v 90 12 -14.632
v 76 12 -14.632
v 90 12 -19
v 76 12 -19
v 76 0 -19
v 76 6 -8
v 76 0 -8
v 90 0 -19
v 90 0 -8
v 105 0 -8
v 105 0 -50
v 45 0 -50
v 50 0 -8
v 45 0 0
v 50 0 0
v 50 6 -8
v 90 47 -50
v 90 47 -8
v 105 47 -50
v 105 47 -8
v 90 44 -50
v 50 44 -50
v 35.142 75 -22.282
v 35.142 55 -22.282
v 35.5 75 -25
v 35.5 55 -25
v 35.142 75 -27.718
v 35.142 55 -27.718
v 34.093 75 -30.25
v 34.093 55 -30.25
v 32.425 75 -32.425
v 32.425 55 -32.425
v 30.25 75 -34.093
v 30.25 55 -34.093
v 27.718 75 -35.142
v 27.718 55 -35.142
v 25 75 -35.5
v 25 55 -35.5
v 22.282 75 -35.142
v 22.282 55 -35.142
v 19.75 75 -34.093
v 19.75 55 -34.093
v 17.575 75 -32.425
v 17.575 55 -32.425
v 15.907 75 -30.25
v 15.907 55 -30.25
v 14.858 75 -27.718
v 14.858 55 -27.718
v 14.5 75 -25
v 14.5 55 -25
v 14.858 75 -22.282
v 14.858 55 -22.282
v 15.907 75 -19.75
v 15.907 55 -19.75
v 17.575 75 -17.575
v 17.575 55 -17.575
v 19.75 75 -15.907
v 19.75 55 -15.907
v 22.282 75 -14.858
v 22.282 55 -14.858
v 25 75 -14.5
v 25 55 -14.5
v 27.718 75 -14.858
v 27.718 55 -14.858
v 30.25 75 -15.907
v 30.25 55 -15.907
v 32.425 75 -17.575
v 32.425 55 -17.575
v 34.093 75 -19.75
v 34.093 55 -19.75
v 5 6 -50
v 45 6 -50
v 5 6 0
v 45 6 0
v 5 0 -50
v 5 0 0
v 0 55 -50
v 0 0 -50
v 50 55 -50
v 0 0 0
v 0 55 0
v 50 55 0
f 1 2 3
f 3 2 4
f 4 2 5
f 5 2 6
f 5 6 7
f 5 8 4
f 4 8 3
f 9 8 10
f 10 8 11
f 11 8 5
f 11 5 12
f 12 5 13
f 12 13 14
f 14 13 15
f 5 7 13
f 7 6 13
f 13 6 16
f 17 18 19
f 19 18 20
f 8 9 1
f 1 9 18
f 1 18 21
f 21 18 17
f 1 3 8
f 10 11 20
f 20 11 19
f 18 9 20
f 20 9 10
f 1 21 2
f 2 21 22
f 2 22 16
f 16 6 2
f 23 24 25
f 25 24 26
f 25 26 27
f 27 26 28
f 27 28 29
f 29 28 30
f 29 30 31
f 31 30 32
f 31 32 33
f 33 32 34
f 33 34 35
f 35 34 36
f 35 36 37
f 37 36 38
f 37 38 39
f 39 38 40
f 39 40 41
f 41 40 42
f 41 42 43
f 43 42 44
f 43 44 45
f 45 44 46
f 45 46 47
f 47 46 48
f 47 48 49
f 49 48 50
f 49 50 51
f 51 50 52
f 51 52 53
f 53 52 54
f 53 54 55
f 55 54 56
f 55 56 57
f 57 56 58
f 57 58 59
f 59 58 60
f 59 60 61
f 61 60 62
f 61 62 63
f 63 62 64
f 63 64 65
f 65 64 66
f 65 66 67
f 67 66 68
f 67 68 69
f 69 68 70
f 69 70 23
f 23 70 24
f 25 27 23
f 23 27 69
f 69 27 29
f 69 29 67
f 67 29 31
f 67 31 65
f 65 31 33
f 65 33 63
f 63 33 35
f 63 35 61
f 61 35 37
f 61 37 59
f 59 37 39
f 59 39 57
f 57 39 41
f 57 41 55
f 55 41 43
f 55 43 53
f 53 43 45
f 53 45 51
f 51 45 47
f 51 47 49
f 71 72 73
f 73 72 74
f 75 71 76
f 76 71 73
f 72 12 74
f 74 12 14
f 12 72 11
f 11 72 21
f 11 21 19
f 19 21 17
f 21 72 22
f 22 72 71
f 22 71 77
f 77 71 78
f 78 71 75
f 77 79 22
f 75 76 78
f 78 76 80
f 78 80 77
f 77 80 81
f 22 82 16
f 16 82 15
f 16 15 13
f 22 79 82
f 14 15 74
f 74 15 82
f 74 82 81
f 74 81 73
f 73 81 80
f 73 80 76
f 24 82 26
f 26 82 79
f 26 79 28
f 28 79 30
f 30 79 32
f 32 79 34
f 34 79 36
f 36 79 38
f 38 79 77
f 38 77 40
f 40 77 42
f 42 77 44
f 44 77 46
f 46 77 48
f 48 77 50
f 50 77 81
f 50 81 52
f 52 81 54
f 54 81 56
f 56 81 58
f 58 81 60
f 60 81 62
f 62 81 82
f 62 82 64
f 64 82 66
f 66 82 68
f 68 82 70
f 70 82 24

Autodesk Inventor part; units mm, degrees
ref_plane "YZ Plane" through (0, 0, 0) normal (1, 0, 0) x (0, 1, 0)
ref_plane "XZ Plane" through (0, 0, 0) normal (0, 1, 0) x (-1, 0, 0)
ref_plane "XY Plane" through (0, 0, 0) normal (0, 0, 1) x (1, 0, 0)
sketch "Sketch1" plane through (0, 0, 0) normal (0, 1, 0) x (-1, 0, 0)
  line L0 (0, 0) -> (-50, 0)
  line L1 (-50, 0) -> (-50, -50)
  line L2 (-50, -50) -> (0, -50)
  line L3 (0, -50) -> (0, 0)
  dimension "d0" = 50
  dimension "d1" = 50
extrude "Extrusion1" add sketch "Sketch1" along normal blind 55
sketch "Sketch2" plane through (0, 0, 0) normal (0, 0, 1) x (1, 0, 0)
  line L0 (0, 0) -> (50, 0) projected
  line L1 (45, 0) -> (45, 6)
  line L2 (50, 0) -> (50, 55) projected
  line L3 (5, 0) -> (5, 6)
  line L4 (0, 0) -> (0, 55) projected
  line L5 (5, 6) -> (45, 6)
  line L6 (5, 0) -> (45, 0)
  dimension "d7" = 6
  dimension "d8" = 5
  dimension "d9" = 5
sketch "Sketch3" plane through (0, 0, 0) normal (0, 0, 1) x (1, 0, 0)
  point P0 (0, 0)
sketch "Sketch4" plane through (0, 55, 0) normal (0, 1, 0) x (1, 0, 0)
  circle A0 centre (25, 25) radius 10.5
  line L0 (0, 50) -> (0, 0) projected
  line L1 (0, 0) -> (50, 0) projected
  dimension "d10" = 21
  dimension "d11" = 25
  dimension "d12" = 25
extrude "Extrusion2" cut sketch "Sketch2" against normal blind 55
extrude "Extrusion3" add sketch "Sketch4" along normal blind 20
sketch "Sketch5" plane through (50, 0, 0) normal (1, 0, 0) x (0, 0, -1)
  line L0 (50, 0) -> (8, 0)
  line L1 (0, 0) -> (50, 0) projected
  line L2 (8, 0) -> (8, 6)
  line L3 (0, 55) -> (50, 55) projected
  line L4 (50, 0) -> (50, 55) projected
  line L5 (50, 0) -> (50, 44)
  line L6 (8, 6) -> (50, 44)
  dimension "d17" = 42
  dimension "d18" = 6
  dimension "d27" = 44
extrude "Extrusion4" add sketch "Sketch5" along normal blind 40
sketch "Sketch6" plane through (50, 0, -8) normal (0, 0, 1) x (1, 0, 0)
  point P0 (-50, 0)
sketch "Sketch7" plane through (50, 6, -8) normal (0, 0.6987, 0.7154) x (1, 0, 0)
  point P0 (-50, -9.8822)
sketch "Sketch8" plane through (50, 6, -8) normal (0, 0.6987, 0.7154) x (1, 0, 0)
  point P0 (-50, -9.8822)
sketch "Sketch9" plane through (90, 0, 0) normal (1, 0, 0) x (0, 0, -1)
  line L0 (0, 0) -> (50, 0) projected
  line L1 (50, 0) -> (8, 0)
  line L2 (8, 0) -> (8, 47)
  line L3 (8, 47) -> (50, 47)
  line L4 (50, 47) -> (50, 0)
  dimension "d22" = 42
  dimension "d23" = 47
extrude "Extrusion5" add sketch "Sketch9" along normal blind 15
sketch "Sketch10" plane through (50, 0, -8) normal (0, 0, 1) x (1, 0, 0)
  point P0 (-50, 0)
sketch "Sketch11" plane through (50, 0, -8) normal (0, 0, 1) x (1, 0, 0)
  line L0 (40, 0) -> (26, 0)
  line L1 (26, 0) -> (26, 12)
  line L2 (26, 12) -> (40, 12)
  line L3 (40, 12) -> (40, 0)
  point P0 (-50, 0)
  dimension "d28" = 14
  dimension "d29" = 12
extrude "Extrusion6" cut sketch "Sketch11" against normal blind 11
properties part number "400185627_VD"
